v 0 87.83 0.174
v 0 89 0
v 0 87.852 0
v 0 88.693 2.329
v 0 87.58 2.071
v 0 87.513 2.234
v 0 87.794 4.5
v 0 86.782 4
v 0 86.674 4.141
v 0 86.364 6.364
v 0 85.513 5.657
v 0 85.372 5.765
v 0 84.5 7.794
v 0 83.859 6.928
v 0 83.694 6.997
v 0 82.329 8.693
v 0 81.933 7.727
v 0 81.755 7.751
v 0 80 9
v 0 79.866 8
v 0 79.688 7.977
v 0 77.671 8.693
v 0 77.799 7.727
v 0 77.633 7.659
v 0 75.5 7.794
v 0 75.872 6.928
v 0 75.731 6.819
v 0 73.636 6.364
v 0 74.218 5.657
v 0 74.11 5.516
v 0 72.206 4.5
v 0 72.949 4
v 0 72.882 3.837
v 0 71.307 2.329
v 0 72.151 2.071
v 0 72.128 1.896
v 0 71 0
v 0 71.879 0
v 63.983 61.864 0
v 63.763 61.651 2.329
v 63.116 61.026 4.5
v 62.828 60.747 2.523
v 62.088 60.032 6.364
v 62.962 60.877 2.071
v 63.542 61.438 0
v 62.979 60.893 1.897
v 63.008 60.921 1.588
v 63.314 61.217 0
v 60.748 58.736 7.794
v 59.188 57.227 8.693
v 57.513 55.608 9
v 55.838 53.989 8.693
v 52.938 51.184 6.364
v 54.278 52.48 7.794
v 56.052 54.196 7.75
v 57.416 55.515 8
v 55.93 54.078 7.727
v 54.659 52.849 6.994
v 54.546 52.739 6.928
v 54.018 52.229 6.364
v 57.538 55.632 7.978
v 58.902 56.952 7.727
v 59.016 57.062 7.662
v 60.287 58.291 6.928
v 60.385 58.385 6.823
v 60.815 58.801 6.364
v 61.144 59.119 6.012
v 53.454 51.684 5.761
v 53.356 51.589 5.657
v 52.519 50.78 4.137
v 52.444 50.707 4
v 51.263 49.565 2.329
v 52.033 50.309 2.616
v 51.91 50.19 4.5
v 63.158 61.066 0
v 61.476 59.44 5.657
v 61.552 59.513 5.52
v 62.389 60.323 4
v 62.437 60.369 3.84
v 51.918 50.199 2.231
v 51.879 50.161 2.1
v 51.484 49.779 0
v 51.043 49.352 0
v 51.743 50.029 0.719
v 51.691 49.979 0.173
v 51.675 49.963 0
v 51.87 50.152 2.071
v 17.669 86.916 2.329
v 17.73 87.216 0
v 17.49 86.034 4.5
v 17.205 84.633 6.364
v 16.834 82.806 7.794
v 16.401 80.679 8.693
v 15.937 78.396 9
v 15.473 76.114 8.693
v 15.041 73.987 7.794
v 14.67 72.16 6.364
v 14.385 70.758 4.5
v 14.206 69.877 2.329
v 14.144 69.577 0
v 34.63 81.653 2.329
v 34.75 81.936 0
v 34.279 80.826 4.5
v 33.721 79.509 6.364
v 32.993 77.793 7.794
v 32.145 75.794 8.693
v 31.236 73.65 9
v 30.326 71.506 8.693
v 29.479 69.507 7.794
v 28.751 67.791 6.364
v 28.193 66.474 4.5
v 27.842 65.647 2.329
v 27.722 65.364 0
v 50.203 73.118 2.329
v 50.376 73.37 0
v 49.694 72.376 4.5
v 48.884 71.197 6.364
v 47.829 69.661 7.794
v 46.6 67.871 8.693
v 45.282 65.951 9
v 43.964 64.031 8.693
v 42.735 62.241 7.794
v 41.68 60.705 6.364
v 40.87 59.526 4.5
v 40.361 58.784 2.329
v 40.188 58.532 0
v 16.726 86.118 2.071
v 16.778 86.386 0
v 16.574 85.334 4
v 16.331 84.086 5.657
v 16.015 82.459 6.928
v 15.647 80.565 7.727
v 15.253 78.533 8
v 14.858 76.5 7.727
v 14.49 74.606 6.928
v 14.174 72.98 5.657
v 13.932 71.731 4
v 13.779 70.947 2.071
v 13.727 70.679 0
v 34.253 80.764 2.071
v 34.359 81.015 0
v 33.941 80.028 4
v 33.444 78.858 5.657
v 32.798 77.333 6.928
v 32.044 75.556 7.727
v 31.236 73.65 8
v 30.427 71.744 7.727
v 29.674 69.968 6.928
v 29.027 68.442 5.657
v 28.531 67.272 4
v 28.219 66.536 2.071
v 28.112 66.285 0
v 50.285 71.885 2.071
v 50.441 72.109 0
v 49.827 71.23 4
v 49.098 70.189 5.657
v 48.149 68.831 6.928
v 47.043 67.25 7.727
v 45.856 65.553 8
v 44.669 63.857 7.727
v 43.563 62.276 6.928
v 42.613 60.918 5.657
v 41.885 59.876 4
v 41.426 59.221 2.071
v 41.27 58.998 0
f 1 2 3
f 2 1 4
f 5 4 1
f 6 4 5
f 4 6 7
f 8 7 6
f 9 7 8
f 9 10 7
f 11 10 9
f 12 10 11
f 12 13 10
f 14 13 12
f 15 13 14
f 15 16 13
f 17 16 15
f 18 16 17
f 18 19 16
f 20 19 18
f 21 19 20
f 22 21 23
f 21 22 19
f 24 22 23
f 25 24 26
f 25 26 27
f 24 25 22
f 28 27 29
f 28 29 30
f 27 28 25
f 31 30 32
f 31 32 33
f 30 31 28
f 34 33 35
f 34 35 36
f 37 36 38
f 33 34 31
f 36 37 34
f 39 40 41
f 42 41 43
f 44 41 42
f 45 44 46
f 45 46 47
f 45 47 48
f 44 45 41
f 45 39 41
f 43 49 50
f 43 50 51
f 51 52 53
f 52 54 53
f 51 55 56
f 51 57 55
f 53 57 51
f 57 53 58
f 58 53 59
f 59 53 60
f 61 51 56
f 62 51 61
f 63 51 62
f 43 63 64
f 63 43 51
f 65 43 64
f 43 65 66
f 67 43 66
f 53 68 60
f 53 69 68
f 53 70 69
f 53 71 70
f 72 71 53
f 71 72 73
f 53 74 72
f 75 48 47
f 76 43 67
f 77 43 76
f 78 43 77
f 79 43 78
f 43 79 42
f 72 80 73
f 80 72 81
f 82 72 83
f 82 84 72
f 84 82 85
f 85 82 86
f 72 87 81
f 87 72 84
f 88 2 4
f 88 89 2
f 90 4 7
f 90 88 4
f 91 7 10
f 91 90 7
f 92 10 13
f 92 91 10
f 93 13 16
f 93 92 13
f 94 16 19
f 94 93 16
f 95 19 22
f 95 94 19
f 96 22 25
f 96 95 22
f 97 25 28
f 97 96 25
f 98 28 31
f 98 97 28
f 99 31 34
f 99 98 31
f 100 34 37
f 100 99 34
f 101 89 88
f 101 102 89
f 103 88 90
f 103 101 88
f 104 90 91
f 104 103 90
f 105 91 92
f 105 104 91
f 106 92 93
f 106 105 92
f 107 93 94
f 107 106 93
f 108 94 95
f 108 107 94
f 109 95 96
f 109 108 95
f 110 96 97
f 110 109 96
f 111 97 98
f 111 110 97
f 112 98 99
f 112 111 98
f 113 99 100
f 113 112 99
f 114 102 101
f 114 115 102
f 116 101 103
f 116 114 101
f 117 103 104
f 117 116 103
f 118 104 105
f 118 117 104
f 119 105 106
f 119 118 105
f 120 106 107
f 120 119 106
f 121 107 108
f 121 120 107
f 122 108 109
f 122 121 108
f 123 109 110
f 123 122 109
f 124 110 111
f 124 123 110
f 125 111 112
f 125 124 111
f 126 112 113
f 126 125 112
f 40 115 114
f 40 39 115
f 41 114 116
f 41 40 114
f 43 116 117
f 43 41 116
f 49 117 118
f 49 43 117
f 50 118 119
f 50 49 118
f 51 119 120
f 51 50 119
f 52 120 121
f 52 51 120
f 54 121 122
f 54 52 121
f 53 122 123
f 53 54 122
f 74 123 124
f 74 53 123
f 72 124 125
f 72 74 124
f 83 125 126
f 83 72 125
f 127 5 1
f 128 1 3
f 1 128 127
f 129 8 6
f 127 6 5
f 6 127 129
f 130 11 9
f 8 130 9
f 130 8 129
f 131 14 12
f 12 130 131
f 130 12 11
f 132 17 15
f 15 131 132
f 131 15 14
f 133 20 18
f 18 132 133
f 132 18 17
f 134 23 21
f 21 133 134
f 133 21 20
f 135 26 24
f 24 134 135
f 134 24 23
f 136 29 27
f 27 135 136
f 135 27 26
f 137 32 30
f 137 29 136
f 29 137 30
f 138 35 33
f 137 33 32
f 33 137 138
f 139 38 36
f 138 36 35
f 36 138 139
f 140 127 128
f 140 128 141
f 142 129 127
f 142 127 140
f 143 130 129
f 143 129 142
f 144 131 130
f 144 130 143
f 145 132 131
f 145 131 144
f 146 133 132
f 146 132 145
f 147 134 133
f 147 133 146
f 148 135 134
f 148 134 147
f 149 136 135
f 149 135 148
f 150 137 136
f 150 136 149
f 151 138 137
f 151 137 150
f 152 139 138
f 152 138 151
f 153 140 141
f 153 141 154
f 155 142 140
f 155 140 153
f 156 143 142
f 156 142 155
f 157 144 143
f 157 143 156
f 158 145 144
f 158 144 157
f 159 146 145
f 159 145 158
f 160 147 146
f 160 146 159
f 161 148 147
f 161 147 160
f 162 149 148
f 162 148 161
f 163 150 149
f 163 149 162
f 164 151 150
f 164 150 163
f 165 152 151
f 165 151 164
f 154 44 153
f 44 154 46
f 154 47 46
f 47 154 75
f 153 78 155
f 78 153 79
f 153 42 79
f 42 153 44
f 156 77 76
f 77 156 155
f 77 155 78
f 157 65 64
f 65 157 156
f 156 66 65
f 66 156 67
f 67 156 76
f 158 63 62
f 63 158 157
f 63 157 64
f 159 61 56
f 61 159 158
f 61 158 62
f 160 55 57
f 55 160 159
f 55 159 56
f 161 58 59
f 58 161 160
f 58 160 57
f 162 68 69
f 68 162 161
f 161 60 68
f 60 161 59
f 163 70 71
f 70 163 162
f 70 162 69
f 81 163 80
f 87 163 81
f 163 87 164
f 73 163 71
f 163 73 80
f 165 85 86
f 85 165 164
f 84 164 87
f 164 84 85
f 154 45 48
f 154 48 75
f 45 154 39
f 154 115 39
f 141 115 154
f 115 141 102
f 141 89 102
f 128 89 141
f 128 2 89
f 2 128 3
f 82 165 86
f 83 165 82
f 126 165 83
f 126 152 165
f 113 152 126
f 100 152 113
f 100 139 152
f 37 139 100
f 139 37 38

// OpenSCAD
// file: ../build_environments.scad
// build_environments.scad: modules to build level sections
//

module pool(diameter=10.0, wall_height=2.0, step_width=3.0, connections=[])
{
    difference() {
        union() {
        difference() {
            cylinder(h=0.5,r1=diameter+step_width,r2=diameter+step_width,$fn=48);
            translate([0,0,-0.1])
                cylinder(h=0.7,r1=diameter,r2=diameter,$fn=48);
        }
        difference() {
            cylinder(h=wall_height,r1=diameter+step_width+1.0,r2=diameter+step_width+1.0,$fn=48);
            translate([0,0,-0.1])
                cylinder(h=wall_height+0.2,r1=diameter+step_width,r2=diameter+step_width,$fn=48);
        }
        }
    
        for (c = connections)
        {
            rotate([0,90,0]) {
                angle = atan2(c[1],c[0]);
                rotate([-angle,0,0]) {
                    cylinder(h=diameter+5.0,r1=c[2],r2=c[2],$fn=48);
                }
            }
        }
    }
}

module straight(length=10.0, width=2.0, dy1=0.0, dy2=0.0, dz=0.0)
{
    dims = [0, 0, 0, 0, 0, (dz/length)];
    matrix = [
        [ 1, dims[0], dims[1], 0 ],
        [ dims[2], 1, dims[4], 0 ],
        [ dims[5], dims[3], 1, 0 ],
        [ 0, 0, 0, 1 ]
    ];
    multmatrix(matrix)
    difference() {
        translate([dy1,0,0])
        union() {
            rotate([0,90,0]) {
                difference() {
                    cylinder(h=(length-dy1-dy2),r1=width+1.0,r2=width+1.0,$fn=24);
                    translate([0,0,-0.1])
                        cylinder(h=(length-dy1-dy2+0.2),r1=width,r2=width,$fn=24);
                }
                difference() {
                    cylinder(h=1.0,r1=width+2.0,r2=width+2.0,$fn=24);
                    translate([0,0,-0.1])
                        cylinder(h=1.2,r1=width,r2=width,$fn=24);
                }
                translate([0,0,(length-dy1-dy2)-1.0]) {
                    difference() {
                        cylinder(h=1.0,r1=width+2.0,r2=width+2.0,$fn=24);
                        translate([0,0,-0.1])
                            cylinder(h=1.2,r1=width,r2=width,$fn=24);
                    }
                }
            }
        }
        translate([0,0,-(2*width+4.0)/2])
            cube([3*length,3*length,2*width+4.0],center=true);
    }
}

module curve(p0=[0,0], center=[0,0], dir=1, angle=0.0, width=2.0)
{
    radius = sqrt((p0[0]-center[0])*(p0[0]-center[0]) + (p0[1]-center[1])*(p0[1]-center[1]));
    if (dir == 0) {
        difference() {
            rotate([0,0,-90])
            difference() {
                rotate_extrude(angle = angle, convexity = 10, $fn=32)
                    translate([radius, 0, 0])
                        circle(r = width+1.0,$fn=24);
                rotate([0,0,-1.0])
                    rotate_extrude(angle = angle+2.0, convexity = 10, $fn=32)
                        translate([radius, 0, 0])
                            circle(r = width,$fn=24);
            }
            translate([0,0,-(2*width+4.0)/2])
                cube([5*radius,5*radius,2*width+4.0],center=true);
        }
    }
    else {
        difference() {
            rotate([0,0,90])
            difference() {
                rotate_extrude(angle = -angle, convexity = 10, $fn=32)
                    translate([radius, 0, 0])
                        circle(r = width+1.0,$fn=24);
                rotate([0,0,1.0])
                    rotate_extrude(angle = -angle-2.0, convexity = 10, $fn=32)
                        translate([radius, 0, 0])
                            circle(r = width,$fn=24);
            }
            translate([0,0,-(2*width+4.0)/2])
                cube([5*radius,5*radius,2*width+4.0],center=true);
        }
    }

}

// test pool
//pool(diameter=12.0000, wall_height=3.0000, step_width=3.0000, connections=[[0.0000,-26.0000,2.0000], [23.6074,0.0000,2.0000]]);

// test straight, slope
//straight(length=26.0000, width=2.0000, dy1=11.8322, dy2=6.7082, dz=0.0000);
//straight(length=29.1549, width=12.0000, dy1=0.0000, dy2=0.0000, dz=-15.0000);

// test curve
//curve(p0=[23.6074, 0.0000], center=[23.6074, 5.0000], dir=0, angle=60.1011, width=2.0000);
//curve(p0=[33.6426, 12.4219], center=[37.9771, 9.9295], dir=1, angle=120.4627, width=2.0000);
// main file
use <../build_environments.scad>;
curve(p0=[184.1256, 283.4397], center=[112.4633, 247.8796], dir=1, angle=45.9647, width=8.0000);
